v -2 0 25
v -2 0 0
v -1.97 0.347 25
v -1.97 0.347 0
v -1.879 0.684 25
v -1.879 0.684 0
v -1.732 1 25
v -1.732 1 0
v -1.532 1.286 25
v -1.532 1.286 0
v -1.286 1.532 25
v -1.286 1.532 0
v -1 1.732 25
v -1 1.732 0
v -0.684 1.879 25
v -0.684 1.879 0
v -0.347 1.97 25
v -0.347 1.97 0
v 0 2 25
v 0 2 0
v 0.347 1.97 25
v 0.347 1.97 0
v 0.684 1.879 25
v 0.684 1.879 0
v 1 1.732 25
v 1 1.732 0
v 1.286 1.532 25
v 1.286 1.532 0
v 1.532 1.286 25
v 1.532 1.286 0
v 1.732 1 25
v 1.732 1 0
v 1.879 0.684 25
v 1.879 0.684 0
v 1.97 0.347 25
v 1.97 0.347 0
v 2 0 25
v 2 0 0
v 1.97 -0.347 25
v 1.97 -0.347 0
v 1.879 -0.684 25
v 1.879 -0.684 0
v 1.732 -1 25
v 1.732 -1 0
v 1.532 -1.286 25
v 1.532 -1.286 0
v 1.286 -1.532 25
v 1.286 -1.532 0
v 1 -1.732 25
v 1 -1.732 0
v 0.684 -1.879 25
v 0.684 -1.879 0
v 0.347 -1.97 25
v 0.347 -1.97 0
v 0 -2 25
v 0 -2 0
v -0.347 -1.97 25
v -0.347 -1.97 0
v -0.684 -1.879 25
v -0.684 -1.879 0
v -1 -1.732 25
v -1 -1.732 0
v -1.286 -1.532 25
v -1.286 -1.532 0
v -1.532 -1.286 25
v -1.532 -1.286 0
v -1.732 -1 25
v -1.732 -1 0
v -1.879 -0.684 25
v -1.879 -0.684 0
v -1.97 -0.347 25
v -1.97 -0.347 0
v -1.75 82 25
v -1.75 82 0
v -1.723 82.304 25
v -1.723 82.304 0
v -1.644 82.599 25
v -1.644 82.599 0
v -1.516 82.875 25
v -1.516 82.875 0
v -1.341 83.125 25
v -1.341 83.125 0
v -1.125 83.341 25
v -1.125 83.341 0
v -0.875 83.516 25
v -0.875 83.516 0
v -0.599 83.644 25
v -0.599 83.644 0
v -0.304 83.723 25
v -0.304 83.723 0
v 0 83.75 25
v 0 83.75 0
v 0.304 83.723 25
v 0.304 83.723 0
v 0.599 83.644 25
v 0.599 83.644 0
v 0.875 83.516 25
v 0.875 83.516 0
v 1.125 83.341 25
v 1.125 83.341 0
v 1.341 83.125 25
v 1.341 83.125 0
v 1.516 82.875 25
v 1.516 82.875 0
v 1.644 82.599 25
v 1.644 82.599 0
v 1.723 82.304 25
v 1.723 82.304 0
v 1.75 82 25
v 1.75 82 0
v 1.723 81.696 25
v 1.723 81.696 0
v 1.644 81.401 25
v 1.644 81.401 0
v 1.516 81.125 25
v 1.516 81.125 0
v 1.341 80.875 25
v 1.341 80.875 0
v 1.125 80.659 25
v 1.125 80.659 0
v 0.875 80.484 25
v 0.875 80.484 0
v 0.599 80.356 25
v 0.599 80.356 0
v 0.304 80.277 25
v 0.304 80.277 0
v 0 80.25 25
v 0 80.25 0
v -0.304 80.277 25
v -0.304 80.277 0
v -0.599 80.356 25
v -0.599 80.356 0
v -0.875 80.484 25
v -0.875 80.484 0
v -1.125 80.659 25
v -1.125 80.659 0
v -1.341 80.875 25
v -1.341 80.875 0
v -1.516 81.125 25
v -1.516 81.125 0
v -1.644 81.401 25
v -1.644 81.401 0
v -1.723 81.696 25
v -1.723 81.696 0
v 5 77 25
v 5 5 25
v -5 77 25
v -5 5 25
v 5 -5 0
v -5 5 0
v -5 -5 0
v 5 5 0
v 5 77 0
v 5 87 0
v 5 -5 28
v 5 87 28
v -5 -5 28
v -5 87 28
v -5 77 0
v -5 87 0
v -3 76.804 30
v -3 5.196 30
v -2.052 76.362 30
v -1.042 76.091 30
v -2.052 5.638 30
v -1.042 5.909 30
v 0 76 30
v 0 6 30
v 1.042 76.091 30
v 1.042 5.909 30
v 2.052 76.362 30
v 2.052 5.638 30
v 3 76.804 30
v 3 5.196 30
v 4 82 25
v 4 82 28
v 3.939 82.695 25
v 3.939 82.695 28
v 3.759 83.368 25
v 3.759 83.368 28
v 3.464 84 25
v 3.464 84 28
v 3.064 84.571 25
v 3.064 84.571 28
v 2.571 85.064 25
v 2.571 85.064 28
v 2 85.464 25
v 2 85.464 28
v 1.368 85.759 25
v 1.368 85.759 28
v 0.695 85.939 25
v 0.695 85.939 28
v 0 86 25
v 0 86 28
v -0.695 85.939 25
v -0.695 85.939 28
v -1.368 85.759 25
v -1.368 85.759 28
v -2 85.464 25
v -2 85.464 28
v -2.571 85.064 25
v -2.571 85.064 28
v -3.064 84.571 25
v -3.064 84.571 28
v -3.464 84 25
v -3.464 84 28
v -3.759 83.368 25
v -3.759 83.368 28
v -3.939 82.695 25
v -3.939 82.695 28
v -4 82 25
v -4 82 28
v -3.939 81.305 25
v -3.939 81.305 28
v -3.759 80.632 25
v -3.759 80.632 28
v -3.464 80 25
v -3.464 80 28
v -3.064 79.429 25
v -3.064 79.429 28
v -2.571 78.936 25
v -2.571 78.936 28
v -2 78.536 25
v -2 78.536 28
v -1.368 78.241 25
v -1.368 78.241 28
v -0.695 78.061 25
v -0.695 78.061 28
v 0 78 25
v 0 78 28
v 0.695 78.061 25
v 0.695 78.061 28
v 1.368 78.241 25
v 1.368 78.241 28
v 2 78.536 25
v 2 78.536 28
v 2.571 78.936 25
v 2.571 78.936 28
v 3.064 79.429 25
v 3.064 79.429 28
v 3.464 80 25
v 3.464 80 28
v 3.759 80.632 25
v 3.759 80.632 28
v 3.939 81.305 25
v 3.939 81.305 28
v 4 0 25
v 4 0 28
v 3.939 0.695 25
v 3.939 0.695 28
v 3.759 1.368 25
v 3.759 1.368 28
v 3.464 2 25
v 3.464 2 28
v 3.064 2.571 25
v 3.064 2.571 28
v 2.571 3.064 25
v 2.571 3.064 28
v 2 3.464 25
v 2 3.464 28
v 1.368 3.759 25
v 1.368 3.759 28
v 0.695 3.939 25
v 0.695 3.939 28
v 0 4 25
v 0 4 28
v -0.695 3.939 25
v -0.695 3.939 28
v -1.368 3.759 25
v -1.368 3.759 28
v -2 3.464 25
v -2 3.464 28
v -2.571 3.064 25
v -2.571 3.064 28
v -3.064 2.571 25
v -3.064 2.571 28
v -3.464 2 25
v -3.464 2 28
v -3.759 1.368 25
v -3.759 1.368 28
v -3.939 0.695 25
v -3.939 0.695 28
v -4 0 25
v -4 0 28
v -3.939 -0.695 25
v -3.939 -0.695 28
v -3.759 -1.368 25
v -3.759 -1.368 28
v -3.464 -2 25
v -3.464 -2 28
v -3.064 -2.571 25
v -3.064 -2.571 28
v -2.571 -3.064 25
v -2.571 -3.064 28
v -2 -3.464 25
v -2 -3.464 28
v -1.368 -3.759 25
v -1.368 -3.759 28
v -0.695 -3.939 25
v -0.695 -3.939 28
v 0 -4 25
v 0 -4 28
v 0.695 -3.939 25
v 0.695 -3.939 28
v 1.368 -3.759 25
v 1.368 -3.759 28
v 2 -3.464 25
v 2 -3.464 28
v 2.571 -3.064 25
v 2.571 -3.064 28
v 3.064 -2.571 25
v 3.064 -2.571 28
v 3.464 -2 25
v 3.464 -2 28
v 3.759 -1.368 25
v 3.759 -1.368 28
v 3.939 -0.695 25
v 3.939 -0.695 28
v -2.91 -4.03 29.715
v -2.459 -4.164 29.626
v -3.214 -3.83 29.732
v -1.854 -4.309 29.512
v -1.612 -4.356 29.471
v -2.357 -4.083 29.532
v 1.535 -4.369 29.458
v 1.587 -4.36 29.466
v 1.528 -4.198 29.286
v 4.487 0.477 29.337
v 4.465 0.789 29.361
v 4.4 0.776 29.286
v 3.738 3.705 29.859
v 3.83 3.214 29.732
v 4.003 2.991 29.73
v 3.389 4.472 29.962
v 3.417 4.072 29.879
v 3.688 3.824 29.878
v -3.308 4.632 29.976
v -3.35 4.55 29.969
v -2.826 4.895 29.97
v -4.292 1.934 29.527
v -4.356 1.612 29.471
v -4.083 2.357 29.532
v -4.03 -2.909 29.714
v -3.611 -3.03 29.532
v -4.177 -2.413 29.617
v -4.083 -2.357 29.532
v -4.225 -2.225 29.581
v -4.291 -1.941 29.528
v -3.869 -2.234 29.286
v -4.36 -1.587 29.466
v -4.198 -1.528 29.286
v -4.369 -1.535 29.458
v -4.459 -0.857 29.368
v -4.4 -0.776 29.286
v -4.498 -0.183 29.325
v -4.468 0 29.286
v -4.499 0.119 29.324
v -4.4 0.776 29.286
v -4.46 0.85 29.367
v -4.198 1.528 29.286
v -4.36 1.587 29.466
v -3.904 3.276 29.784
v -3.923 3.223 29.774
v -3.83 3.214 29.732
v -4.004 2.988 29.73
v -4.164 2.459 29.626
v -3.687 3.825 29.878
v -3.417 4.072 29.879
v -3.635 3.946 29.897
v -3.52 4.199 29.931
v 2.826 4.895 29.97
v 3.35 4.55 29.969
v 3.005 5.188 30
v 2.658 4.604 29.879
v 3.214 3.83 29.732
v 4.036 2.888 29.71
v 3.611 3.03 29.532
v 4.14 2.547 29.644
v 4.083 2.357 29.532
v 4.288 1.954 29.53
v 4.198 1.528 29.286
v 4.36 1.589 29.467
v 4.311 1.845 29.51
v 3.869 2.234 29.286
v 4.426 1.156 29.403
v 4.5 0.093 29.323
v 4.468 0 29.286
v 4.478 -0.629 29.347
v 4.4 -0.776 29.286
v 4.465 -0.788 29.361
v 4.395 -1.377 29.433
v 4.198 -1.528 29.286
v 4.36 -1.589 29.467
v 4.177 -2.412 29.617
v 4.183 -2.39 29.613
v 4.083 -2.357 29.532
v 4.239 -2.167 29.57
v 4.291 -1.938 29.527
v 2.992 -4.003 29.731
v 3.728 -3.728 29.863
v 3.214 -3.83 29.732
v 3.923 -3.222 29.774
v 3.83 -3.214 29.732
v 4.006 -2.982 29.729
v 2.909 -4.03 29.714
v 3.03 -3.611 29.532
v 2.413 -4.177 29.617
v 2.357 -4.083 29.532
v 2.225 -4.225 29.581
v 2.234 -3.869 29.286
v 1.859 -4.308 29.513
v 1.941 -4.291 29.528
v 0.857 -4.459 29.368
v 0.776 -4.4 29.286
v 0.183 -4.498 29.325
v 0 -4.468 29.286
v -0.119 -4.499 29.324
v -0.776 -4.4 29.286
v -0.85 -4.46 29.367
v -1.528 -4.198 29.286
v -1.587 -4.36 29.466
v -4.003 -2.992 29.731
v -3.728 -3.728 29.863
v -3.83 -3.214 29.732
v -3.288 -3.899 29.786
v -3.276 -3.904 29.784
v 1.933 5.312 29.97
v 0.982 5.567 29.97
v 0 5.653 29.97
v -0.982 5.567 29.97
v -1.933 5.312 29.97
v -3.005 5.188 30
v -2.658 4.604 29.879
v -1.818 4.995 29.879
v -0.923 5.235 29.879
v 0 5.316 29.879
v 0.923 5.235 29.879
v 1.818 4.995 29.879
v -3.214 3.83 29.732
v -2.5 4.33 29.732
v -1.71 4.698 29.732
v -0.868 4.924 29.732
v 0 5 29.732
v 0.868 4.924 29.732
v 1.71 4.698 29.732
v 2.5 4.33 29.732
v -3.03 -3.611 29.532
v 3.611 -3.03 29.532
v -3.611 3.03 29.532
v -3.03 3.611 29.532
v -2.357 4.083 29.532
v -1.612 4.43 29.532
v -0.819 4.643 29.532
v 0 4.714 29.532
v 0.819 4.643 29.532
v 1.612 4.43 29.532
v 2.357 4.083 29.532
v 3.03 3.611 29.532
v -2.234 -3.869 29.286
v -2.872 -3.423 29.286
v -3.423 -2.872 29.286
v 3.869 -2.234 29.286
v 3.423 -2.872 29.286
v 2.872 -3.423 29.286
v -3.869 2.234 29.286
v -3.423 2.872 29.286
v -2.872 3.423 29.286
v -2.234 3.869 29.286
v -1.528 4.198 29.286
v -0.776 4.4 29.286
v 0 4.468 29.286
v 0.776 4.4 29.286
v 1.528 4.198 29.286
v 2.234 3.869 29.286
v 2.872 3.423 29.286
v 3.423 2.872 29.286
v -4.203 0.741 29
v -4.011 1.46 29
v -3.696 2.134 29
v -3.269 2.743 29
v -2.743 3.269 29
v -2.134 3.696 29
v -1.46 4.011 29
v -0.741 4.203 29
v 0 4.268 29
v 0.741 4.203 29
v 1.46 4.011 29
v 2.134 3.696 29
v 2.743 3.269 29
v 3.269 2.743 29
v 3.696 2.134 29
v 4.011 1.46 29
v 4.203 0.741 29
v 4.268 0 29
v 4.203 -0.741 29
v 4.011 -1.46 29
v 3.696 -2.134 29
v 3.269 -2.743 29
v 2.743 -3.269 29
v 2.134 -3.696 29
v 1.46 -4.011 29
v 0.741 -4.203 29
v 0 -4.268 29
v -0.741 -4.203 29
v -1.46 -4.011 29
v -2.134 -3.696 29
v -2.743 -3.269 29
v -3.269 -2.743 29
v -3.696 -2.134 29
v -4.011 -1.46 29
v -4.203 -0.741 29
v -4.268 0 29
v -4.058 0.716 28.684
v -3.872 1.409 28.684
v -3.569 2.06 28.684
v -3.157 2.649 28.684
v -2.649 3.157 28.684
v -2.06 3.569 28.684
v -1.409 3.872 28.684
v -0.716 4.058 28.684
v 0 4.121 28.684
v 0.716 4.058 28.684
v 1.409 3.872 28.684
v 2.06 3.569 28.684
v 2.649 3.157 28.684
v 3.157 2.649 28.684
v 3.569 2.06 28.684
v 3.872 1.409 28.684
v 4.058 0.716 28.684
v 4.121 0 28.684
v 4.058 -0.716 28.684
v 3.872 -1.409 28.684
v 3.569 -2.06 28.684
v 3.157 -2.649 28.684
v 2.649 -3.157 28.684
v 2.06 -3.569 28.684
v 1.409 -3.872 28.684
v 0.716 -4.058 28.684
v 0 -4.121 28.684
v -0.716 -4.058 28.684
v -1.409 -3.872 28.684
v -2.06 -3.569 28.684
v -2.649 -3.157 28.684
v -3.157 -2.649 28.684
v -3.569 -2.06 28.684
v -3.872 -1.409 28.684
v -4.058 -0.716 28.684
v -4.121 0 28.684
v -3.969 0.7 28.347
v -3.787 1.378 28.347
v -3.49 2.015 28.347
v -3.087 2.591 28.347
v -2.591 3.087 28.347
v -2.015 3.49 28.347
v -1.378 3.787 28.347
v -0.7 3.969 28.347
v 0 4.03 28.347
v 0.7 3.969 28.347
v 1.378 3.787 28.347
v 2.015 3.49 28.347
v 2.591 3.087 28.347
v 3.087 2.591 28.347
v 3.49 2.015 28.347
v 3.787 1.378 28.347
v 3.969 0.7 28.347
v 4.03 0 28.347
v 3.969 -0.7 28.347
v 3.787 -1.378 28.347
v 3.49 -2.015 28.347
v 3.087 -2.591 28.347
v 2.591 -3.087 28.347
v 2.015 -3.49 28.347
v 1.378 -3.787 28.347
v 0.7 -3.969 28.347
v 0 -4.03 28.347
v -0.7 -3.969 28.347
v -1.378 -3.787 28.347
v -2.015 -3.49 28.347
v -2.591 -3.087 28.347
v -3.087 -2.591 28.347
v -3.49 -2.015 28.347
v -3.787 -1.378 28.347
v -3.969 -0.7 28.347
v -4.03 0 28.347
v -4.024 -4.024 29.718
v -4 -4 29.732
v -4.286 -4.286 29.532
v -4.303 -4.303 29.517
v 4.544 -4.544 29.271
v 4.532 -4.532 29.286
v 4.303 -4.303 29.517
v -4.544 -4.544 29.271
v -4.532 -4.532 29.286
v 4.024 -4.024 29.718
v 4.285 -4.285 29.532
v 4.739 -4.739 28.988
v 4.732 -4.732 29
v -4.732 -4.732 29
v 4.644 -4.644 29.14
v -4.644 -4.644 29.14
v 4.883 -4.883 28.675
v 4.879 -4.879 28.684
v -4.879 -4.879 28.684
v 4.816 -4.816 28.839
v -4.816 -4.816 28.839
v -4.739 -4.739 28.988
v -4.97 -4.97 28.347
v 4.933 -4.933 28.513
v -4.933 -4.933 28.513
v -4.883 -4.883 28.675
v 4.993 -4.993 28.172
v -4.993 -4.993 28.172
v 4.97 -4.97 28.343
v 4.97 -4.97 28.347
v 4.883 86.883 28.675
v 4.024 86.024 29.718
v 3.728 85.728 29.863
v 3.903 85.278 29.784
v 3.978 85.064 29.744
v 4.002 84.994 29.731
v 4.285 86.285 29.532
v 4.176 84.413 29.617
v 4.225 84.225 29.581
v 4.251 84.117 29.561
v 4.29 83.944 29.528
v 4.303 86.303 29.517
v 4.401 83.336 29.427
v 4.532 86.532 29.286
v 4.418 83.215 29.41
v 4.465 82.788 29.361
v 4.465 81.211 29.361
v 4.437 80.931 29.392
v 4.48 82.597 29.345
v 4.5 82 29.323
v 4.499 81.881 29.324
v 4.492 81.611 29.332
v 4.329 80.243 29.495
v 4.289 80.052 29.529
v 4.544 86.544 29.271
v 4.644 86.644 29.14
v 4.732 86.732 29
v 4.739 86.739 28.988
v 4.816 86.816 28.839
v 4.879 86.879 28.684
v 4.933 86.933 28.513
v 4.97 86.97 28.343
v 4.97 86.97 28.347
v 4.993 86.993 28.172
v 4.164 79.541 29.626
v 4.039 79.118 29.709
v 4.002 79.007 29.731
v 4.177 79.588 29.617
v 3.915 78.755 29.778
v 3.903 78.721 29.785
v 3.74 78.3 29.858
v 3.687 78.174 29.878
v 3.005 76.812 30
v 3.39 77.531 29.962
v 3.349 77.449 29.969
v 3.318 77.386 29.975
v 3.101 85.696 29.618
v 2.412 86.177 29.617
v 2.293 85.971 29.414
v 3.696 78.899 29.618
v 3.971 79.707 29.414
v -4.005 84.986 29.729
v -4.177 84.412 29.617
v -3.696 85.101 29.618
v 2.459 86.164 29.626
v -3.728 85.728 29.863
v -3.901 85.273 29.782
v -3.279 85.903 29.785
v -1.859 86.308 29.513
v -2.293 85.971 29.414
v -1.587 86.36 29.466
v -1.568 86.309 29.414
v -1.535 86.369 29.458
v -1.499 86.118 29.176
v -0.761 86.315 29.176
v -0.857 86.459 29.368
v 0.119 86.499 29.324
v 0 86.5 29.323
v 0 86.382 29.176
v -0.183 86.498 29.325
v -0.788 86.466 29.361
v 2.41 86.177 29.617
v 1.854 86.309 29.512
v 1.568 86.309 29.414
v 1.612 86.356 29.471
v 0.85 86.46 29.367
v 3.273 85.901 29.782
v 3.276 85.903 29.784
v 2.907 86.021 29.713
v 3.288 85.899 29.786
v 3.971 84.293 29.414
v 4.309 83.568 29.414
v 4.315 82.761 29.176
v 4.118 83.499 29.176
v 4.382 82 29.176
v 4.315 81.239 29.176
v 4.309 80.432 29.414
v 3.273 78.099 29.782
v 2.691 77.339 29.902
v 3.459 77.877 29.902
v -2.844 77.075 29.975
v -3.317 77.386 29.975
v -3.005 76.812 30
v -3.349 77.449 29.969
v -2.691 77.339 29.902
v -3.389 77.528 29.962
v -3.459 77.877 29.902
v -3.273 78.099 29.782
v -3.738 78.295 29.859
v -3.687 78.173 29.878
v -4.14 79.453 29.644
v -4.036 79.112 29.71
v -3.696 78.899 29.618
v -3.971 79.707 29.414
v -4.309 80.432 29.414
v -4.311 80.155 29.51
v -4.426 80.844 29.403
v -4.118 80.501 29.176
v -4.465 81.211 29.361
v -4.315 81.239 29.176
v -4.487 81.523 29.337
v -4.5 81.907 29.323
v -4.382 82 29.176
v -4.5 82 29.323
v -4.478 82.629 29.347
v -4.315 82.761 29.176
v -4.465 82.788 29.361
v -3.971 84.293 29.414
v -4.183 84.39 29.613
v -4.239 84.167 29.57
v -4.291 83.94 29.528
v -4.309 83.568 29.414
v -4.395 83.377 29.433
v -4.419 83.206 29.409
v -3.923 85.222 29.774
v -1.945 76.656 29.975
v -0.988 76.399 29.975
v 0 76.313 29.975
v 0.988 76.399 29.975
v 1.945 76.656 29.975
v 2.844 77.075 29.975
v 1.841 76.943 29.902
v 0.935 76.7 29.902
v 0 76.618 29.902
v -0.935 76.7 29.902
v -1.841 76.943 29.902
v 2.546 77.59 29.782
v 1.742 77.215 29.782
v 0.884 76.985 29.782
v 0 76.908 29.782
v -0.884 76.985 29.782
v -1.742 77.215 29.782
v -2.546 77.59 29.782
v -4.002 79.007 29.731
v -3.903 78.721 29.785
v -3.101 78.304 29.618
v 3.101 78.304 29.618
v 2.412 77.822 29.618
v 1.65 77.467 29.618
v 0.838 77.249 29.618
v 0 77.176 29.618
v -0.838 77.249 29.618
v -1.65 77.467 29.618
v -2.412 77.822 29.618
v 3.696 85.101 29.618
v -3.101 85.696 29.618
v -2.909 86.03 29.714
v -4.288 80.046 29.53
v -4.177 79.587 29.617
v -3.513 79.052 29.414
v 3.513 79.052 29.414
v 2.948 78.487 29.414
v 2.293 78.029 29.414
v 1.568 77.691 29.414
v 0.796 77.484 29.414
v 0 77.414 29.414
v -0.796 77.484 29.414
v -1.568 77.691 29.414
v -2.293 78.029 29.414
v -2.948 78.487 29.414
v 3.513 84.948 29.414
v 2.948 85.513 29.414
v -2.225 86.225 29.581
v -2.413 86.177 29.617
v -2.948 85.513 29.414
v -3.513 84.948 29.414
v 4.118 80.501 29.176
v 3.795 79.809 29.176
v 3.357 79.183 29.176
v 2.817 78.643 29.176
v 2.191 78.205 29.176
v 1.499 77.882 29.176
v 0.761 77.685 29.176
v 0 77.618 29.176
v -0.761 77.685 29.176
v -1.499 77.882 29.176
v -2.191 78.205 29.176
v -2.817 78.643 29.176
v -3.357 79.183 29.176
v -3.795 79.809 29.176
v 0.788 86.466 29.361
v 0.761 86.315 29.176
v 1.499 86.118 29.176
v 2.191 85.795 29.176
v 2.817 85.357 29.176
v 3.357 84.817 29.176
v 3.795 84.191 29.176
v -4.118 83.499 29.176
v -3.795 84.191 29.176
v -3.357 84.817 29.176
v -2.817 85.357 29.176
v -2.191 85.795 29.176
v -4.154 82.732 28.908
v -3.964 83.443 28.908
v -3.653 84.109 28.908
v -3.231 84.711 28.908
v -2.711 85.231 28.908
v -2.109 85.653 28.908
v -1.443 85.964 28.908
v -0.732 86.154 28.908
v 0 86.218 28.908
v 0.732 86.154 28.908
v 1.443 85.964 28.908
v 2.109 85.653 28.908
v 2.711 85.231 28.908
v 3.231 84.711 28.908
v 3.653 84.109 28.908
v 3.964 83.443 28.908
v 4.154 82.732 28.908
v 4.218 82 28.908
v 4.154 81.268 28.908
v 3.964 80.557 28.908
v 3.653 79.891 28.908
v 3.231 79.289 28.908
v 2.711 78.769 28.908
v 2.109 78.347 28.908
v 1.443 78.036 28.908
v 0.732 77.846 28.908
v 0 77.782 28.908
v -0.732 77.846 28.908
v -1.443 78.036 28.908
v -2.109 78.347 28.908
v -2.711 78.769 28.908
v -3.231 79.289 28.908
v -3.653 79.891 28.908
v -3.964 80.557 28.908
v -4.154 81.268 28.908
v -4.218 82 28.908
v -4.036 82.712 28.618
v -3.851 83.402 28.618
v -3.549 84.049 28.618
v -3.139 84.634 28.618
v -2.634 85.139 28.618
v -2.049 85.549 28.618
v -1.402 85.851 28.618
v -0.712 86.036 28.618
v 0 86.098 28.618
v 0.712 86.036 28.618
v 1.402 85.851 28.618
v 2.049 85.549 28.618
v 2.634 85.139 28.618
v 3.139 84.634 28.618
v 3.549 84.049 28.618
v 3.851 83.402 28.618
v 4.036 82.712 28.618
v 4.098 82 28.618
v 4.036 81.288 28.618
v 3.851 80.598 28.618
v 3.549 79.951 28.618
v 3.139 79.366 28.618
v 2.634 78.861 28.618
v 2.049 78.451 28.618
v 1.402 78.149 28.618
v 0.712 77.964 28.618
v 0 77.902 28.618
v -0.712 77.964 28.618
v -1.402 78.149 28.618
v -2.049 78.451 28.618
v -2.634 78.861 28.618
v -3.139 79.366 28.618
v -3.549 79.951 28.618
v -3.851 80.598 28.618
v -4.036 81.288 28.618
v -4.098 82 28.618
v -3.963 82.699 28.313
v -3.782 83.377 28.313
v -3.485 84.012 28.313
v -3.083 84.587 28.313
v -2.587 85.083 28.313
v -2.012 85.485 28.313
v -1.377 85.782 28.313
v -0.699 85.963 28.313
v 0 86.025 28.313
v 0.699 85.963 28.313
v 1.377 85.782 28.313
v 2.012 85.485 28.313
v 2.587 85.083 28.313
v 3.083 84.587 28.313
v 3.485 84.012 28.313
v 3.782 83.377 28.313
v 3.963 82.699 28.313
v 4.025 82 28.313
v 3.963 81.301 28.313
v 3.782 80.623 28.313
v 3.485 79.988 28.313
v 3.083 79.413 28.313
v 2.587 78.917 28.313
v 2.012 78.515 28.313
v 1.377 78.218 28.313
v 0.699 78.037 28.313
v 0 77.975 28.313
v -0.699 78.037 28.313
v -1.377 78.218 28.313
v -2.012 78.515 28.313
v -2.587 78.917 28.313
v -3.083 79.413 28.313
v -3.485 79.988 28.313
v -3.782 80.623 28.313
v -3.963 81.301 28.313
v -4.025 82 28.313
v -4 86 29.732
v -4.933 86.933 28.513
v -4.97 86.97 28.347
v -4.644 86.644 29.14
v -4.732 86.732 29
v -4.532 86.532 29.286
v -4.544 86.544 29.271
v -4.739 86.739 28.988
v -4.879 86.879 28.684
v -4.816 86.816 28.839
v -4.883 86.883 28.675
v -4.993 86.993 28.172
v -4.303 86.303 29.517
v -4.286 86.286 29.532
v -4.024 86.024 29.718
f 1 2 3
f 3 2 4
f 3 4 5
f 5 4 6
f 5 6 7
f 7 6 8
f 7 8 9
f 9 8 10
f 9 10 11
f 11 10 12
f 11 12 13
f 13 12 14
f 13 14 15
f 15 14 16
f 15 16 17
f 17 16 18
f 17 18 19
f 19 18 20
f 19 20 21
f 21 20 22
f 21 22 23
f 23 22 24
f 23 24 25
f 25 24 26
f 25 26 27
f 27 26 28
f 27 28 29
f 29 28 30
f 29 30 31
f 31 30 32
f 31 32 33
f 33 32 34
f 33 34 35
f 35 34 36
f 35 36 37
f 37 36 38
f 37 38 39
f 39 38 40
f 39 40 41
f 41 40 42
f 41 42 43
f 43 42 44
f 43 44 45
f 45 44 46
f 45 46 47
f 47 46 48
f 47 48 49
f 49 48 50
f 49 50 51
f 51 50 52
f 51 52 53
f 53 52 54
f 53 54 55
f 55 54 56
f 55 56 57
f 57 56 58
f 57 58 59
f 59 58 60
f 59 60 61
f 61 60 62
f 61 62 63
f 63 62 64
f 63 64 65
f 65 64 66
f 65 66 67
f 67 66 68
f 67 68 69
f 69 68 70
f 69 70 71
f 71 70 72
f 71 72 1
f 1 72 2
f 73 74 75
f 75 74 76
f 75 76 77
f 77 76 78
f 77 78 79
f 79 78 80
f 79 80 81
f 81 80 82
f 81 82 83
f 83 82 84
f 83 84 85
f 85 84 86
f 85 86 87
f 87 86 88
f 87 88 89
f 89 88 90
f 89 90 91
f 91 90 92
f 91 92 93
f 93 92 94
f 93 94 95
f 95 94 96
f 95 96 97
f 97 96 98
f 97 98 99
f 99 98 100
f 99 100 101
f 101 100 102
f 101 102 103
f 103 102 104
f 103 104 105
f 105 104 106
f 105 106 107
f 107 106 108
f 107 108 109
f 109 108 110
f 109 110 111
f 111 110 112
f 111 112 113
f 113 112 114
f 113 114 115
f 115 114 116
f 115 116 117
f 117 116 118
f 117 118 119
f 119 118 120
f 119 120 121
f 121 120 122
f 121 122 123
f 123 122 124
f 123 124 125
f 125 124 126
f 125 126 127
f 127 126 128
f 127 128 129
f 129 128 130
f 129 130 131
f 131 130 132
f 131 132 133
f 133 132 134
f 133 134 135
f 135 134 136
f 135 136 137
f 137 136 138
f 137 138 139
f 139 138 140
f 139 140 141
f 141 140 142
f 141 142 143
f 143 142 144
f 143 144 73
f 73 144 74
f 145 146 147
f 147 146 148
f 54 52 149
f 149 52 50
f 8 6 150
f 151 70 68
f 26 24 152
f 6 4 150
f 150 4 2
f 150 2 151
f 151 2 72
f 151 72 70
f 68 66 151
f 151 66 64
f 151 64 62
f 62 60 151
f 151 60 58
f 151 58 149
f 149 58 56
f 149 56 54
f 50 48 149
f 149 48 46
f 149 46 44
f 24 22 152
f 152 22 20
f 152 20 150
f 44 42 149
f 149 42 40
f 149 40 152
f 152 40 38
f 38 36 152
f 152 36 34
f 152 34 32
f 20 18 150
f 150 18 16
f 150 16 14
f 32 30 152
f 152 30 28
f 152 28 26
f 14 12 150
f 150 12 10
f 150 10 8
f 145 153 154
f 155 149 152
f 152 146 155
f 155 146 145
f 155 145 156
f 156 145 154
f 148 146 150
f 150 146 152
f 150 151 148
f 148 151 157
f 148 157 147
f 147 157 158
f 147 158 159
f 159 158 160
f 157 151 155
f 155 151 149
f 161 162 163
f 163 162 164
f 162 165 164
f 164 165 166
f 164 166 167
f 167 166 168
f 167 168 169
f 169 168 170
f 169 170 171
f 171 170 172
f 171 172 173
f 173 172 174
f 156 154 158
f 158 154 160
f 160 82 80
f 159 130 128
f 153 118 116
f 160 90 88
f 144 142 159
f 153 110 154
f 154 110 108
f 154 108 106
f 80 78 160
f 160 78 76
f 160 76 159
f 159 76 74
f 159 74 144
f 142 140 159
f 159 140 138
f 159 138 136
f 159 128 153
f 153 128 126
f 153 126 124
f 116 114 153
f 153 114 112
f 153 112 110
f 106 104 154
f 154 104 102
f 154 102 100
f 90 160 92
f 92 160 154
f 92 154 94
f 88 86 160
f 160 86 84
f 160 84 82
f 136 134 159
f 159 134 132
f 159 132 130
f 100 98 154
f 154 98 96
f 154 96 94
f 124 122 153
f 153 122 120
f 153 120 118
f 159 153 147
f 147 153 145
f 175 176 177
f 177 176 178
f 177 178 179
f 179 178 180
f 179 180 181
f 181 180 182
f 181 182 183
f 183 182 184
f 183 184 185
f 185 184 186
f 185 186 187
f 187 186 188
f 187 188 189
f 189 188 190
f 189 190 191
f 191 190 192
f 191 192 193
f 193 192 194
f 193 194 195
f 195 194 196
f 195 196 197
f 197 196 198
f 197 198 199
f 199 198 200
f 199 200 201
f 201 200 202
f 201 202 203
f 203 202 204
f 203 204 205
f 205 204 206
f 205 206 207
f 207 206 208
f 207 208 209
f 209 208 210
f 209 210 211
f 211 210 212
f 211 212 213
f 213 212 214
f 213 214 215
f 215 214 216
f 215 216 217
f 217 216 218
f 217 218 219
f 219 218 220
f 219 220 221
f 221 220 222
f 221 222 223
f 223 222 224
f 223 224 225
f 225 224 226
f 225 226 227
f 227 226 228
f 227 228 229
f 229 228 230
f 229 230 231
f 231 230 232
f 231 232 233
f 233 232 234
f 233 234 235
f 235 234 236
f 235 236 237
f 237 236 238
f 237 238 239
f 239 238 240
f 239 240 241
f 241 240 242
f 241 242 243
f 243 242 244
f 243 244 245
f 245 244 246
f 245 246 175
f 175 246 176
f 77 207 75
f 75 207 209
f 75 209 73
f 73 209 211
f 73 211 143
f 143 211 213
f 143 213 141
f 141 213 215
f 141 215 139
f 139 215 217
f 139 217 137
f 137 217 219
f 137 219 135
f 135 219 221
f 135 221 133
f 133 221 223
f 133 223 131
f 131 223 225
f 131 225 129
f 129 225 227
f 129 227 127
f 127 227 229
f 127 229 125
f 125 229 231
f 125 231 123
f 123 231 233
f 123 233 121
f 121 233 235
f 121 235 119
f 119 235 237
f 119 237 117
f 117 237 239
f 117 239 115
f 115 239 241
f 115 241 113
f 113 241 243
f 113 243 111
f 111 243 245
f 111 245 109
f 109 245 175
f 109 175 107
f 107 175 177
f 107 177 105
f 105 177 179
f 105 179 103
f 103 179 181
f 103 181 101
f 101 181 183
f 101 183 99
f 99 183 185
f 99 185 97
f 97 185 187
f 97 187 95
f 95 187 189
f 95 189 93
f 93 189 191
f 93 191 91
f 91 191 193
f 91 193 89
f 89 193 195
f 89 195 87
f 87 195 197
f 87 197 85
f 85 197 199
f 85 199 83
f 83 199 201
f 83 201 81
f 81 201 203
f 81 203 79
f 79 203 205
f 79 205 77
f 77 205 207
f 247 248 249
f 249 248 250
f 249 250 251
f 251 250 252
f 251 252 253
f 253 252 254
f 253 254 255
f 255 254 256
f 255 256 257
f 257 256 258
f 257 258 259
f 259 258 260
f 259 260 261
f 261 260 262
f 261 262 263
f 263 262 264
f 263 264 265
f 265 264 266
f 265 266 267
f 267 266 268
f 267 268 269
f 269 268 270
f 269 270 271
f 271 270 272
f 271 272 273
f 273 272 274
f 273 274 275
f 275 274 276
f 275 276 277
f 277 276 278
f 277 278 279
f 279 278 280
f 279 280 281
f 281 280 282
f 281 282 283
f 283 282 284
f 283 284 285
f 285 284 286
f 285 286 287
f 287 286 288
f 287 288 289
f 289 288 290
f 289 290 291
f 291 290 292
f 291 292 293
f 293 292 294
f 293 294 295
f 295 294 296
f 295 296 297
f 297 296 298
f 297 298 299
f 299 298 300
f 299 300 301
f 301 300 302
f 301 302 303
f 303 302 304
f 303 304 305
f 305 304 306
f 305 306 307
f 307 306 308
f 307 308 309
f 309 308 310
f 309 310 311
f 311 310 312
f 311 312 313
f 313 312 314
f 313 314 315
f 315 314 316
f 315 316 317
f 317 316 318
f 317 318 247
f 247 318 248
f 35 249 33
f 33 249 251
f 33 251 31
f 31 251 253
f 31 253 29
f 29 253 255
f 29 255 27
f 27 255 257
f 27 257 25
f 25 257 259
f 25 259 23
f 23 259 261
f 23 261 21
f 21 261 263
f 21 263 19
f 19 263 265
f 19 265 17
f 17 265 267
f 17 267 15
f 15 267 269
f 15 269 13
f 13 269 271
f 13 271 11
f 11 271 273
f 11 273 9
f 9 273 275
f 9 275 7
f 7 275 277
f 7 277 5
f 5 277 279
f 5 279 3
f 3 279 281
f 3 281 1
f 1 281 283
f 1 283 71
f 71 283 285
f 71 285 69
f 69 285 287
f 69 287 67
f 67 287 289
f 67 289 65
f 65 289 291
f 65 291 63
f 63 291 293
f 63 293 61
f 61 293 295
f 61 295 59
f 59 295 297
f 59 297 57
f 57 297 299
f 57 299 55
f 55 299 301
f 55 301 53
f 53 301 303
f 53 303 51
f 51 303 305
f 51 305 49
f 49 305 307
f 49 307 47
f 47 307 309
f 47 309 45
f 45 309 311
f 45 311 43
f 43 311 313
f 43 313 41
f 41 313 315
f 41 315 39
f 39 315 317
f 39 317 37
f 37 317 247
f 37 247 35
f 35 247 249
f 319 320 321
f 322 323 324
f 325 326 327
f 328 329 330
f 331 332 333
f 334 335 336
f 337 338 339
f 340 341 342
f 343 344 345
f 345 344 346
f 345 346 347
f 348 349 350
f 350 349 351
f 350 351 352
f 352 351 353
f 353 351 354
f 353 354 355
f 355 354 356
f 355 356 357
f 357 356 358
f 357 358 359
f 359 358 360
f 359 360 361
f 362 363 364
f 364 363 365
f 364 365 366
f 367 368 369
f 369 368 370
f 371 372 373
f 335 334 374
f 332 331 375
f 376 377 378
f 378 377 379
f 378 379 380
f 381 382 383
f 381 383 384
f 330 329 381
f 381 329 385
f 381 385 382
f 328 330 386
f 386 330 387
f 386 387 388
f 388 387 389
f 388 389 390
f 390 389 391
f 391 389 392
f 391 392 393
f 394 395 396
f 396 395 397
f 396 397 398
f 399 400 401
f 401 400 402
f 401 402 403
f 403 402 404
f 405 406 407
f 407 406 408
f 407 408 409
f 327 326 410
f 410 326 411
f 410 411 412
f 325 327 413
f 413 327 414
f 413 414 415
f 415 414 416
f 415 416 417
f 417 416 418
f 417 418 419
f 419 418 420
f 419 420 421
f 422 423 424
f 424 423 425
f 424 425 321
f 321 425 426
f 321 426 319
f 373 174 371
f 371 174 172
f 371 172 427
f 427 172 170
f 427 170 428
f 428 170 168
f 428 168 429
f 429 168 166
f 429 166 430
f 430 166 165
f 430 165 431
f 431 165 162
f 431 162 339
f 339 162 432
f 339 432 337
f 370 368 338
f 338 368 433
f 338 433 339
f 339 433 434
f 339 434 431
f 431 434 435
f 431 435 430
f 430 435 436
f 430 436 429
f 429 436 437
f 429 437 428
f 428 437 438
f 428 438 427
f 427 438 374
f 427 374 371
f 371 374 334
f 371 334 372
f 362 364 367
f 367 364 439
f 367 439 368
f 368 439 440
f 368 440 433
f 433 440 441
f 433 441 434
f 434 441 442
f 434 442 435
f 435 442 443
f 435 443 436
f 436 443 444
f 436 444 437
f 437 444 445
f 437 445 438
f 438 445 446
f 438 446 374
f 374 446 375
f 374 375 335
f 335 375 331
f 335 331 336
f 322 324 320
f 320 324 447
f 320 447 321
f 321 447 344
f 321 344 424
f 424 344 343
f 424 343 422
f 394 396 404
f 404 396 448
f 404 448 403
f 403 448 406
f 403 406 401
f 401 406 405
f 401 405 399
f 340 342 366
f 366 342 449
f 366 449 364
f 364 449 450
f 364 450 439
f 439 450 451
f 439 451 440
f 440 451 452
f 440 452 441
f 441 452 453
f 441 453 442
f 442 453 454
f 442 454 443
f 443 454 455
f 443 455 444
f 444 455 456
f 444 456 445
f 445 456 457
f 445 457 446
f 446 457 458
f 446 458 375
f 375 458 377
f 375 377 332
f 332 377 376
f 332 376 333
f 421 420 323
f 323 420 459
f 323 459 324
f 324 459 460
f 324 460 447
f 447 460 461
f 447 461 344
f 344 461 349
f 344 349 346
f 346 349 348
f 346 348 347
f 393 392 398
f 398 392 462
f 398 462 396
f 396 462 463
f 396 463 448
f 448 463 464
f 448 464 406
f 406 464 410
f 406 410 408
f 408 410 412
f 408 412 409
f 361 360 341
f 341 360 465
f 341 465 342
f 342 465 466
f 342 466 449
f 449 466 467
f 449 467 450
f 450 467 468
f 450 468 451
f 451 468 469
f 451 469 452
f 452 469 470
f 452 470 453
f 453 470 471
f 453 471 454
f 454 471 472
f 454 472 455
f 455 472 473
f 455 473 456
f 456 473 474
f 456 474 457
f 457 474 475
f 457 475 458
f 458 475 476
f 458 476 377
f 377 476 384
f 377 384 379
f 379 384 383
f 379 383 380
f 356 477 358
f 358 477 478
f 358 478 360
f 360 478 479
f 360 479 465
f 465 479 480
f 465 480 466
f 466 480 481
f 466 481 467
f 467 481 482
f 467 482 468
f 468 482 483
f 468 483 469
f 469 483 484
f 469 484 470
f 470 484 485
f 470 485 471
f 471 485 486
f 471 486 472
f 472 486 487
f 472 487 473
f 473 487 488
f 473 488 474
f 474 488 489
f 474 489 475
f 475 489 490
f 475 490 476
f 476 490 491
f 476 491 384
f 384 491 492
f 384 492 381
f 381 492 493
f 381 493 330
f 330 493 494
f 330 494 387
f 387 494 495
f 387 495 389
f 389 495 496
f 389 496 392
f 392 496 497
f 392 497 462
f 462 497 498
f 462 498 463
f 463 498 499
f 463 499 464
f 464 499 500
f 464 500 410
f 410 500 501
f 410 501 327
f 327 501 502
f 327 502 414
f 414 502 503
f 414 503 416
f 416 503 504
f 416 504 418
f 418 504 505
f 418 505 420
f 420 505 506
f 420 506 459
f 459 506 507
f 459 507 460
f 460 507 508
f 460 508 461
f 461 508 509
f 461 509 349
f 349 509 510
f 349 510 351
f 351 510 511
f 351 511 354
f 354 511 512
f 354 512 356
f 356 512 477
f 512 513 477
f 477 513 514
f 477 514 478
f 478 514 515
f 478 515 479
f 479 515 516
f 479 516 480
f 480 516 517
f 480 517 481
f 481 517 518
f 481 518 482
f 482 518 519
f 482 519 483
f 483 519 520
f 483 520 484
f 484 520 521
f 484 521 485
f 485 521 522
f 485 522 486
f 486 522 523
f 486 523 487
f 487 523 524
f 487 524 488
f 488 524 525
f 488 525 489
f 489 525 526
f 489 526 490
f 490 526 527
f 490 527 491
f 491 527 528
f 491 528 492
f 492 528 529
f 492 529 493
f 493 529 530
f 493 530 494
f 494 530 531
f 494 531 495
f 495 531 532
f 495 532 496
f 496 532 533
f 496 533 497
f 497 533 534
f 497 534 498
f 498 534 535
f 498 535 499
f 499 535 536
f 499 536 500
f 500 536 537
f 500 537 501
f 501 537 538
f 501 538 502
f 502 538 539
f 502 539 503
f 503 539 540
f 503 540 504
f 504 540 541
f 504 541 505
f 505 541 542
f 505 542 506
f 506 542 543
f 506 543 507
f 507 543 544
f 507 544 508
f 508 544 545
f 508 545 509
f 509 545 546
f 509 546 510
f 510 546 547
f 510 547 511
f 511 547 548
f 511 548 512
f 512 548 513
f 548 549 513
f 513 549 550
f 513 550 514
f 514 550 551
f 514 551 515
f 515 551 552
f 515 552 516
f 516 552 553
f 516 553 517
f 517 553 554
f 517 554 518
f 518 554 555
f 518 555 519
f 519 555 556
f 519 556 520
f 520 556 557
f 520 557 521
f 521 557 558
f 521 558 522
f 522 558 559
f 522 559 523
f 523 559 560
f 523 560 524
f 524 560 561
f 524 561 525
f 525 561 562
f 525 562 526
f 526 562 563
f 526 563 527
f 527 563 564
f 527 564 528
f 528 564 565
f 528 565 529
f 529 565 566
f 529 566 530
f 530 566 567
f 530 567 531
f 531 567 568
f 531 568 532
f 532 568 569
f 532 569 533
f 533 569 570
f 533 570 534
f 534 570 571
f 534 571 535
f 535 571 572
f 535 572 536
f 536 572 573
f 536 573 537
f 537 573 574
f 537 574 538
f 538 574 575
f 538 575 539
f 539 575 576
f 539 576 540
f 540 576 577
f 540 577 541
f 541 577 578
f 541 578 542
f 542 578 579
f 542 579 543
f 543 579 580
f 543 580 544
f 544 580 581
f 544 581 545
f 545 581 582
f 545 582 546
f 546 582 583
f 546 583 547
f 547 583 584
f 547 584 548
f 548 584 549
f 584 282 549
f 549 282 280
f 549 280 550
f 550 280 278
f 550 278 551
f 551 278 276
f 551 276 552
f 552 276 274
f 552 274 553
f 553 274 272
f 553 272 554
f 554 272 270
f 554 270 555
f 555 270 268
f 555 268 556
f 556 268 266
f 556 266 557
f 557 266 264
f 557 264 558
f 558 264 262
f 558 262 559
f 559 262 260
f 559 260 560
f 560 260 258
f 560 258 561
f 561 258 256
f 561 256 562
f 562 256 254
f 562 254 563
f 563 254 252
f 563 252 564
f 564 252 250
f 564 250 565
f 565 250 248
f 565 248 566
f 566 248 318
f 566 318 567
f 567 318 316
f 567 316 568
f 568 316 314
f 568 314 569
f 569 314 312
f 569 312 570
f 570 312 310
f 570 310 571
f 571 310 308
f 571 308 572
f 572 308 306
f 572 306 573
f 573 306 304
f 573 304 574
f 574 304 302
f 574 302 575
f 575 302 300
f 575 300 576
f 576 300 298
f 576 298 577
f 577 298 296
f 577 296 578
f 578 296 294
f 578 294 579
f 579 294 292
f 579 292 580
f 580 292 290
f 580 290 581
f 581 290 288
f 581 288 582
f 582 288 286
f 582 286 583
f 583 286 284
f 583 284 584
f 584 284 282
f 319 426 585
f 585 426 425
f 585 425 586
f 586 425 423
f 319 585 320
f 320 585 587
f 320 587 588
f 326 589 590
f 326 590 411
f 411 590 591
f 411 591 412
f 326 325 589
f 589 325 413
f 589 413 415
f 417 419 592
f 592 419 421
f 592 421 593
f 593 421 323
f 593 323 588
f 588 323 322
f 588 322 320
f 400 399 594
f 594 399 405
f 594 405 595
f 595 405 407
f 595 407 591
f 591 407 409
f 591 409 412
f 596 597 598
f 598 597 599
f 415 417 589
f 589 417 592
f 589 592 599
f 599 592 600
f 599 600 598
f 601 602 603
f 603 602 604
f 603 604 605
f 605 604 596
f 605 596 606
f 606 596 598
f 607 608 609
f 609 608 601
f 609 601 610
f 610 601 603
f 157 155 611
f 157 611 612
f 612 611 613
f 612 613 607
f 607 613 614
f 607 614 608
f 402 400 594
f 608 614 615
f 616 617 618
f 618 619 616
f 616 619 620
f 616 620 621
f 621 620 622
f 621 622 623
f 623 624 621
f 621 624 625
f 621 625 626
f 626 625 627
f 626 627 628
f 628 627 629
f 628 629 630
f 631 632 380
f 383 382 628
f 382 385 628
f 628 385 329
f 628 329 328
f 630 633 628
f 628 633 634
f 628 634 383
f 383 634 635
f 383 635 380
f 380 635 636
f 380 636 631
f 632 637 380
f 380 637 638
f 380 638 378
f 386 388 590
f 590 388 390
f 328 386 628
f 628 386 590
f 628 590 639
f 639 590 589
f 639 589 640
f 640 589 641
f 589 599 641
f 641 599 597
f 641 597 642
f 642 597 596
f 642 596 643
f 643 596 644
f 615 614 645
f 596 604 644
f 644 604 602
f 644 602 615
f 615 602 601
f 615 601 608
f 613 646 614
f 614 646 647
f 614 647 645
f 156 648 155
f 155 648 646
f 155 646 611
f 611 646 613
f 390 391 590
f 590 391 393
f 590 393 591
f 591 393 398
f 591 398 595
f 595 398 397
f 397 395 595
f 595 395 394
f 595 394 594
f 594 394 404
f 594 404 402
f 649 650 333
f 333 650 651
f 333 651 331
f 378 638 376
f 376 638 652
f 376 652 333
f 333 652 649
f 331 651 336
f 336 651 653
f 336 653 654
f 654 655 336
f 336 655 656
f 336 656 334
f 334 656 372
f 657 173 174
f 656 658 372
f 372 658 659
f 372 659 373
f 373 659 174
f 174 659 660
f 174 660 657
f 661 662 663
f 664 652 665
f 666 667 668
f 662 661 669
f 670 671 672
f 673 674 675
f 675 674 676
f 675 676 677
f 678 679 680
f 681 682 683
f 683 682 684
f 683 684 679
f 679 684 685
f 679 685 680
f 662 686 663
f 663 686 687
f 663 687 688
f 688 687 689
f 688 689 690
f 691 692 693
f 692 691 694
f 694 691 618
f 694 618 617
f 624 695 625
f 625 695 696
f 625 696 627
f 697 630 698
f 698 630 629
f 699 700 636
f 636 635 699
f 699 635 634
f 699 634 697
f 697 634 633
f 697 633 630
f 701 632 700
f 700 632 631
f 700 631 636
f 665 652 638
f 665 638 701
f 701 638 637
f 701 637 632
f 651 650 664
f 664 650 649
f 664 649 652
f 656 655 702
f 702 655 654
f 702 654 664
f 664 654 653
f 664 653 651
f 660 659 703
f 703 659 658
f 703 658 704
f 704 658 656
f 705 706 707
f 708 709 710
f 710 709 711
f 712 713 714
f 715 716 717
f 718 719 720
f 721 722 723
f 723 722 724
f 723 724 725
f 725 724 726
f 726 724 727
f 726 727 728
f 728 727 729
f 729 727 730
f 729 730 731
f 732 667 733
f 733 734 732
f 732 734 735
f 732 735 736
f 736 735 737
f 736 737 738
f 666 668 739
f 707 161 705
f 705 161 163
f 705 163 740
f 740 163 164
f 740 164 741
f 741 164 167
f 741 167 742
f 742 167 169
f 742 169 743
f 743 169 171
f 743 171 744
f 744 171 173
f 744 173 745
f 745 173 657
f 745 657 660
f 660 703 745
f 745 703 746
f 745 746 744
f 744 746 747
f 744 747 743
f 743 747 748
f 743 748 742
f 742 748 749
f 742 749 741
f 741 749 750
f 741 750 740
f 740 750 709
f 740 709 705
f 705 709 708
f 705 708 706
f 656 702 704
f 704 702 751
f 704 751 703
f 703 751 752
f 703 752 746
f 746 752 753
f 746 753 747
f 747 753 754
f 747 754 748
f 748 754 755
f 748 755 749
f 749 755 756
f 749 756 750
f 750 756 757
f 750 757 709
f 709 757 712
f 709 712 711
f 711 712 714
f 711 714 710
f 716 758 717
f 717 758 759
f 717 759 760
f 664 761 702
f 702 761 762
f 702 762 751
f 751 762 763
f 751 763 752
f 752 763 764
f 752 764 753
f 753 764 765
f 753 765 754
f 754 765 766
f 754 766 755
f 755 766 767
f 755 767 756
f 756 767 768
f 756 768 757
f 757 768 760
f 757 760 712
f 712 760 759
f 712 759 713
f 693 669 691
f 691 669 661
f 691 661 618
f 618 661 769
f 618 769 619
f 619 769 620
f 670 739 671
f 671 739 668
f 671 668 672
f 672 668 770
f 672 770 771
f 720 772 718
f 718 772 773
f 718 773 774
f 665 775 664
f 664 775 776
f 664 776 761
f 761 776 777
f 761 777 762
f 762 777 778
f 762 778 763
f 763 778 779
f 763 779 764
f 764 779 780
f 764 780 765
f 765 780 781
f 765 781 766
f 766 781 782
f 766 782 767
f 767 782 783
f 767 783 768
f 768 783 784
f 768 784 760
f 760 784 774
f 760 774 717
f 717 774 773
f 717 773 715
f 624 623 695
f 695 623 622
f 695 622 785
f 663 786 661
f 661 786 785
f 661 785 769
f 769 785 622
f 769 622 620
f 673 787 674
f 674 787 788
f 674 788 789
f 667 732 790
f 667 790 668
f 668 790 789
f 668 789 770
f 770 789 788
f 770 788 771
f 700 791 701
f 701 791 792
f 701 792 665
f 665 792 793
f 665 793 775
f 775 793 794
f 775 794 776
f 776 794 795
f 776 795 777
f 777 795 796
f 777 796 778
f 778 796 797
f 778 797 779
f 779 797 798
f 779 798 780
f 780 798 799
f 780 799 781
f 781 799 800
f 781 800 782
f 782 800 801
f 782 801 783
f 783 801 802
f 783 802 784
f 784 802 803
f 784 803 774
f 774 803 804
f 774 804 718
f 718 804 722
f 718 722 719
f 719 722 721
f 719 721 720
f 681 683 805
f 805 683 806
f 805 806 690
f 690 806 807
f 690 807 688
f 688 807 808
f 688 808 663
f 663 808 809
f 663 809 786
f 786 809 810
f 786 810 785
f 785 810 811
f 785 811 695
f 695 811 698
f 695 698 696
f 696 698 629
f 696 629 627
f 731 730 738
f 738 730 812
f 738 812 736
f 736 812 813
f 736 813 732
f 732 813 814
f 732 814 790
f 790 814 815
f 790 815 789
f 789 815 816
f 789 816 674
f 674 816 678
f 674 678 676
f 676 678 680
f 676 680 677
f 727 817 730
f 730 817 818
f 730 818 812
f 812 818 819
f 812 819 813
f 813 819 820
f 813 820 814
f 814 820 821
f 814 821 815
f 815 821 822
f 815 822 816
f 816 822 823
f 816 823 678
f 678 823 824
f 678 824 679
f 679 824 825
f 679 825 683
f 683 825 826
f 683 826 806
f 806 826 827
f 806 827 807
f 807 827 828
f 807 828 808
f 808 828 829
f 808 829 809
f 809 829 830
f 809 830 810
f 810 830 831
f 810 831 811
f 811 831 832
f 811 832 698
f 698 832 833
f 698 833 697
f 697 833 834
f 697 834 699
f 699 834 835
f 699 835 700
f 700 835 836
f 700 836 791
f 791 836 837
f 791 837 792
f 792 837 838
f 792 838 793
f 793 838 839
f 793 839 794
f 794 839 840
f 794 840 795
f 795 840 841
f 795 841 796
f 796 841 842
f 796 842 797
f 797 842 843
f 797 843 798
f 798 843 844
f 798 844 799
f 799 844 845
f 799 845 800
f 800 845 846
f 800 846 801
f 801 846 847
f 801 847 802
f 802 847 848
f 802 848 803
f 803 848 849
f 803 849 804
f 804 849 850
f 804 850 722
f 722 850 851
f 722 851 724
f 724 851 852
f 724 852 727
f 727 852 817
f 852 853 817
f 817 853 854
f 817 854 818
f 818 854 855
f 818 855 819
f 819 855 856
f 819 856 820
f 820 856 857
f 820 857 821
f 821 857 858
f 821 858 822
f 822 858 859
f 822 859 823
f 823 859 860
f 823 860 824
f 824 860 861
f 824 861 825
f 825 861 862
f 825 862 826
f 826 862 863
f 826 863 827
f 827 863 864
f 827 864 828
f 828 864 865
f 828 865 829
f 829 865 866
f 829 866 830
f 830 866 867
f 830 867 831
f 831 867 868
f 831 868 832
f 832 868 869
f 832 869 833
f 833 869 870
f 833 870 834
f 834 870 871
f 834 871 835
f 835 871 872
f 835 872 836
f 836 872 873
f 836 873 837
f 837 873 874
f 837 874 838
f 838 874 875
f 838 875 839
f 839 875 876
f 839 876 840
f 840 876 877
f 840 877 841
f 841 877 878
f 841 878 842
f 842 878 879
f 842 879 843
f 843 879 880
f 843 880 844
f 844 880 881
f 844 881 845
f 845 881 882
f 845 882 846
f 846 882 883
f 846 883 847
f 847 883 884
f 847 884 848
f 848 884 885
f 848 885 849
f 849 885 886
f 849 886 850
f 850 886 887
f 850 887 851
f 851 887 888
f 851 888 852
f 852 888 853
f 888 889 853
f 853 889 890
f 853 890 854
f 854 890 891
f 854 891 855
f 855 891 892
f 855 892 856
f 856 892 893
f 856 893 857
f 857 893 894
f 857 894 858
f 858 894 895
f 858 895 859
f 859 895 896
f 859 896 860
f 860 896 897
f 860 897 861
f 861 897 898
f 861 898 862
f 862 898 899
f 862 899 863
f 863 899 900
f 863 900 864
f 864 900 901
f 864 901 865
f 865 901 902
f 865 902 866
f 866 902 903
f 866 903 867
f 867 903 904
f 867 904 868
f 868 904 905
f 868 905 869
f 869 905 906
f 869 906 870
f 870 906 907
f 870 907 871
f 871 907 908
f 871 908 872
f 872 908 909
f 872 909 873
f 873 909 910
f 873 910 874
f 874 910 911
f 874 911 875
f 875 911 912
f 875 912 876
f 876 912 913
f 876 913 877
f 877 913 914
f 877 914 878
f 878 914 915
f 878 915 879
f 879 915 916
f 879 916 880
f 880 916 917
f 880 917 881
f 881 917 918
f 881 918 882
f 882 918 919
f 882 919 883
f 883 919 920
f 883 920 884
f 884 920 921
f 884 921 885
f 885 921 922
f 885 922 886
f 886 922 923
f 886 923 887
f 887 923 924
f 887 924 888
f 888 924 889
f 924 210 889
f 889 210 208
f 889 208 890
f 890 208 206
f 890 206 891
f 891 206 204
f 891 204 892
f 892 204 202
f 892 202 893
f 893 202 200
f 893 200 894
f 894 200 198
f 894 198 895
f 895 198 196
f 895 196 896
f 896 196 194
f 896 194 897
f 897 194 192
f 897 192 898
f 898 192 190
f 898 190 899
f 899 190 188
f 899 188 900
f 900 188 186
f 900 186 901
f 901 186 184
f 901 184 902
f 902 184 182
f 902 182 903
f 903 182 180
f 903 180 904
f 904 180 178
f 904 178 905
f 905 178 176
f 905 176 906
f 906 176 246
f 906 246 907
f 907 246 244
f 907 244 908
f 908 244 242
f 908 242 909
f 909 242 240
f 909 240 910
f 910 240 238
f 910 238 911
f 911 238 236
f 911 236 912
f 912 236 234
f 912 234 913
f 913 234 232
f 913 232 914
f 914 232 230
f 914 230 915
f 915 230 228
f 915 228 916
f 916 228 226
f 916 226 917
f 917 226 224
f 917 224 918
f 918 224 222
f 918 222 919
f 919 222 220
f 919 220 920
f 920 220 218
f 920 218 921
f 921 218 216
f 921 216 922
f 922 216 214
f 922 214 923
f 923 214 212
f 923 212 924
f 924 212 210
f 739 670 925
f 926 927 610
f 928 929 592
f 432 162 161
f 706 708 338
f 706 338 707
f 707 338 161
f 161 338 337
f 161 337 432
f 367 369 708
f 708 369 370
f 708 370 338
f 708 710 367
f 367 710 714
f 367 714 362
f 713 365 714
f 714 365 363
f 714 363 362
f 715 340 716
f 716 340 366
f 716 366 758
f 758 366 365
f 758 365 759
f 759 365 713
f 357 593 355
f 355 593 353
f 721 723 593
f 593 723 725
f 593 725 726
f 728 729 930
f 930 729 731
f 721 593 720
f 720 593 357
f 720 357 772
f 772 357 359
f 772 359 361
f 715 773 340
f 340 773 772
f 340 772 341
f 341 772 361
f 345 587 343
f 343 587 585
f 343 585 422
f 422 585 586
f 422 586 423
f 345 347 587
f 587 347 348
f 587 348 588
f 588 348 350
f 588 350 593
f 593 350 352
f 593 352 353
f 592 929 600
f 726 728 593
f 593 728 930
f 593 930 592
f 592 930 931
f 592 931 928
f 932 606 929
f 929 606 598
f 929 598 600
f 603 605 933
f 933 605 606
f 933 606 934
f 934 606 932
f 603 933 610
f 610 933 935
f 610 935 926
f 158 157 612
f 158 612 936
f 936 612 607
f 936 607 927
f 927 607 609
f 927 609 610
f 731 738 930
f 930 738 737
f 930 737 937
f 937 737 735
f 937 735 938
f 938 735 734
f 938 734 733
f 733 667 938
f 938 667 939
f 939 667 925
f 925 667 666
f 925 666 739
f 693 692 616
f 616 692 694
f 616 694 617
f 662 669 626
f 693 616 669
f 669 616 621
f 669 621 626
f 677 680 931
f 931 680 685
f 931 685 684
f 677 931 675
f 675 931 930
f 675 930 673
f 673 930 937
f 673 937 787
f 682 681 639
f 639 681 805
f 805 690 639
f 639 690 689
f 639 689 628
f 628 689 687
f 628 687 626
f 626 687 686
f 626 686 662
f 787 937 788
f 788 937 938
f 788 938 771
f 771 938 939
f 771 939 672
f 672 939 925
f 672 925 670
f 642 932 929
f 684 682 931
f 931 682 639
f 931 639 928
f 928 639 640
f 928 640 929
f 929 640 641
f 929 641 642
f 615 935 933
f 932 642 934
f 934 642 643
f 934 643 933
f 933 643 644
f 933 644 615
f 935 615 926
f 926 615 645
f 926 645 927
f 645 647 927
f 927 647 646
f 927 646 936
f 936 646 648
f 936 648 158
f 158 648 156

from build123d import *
from build123d.topology import SkipClean

# Parameters (mm, degrees)
SCHIZZO1_W                   = 10
SCHIZZO1_H                   = 10
SCHIZZO1_R                   = 2
ESTRUSIONE_ESTRUSIONE1_DEPTH = 25
SCHIZZO2_W                   = 10
SCHIZZO2_H                   = 92
SCHIZZO2_R                   = 1.75
SCHIZZO2_R_2                 = 2
ESTRUSIONE_ESTRUSIONE2_DEPTH = 5
ESTRUSIONE_ESTRUSIONE3_START = 25
SCHIZZO3_W                   = 10
SCHIZZO3_H                   = 10
SCHIZZO3_R                   = 1.75
ESTRUSIONE_ESTRUSIONE3_DEPTH = 25
SCHIZZO4_R                   = 4
TAGLIO_ESTRUSIONE1_DEPTH     = 5
RACCORDO1_R                  = 2


with BuildPart() as part:
    # Schizzo1 → Estrusione-Estrusione1 (new body)
    with BuildSketch(Plane.XY):
        Rectangle(SCHIZZO1_W, SCHIZZO1_H)
        Circle(SCHIZZO1_R, mode=Mode.SUBTRACT)
    extrude(amount=ESTRUSIONE_ESTRUSIONE1_DEPTH)

    # Schizzo2 → Estrusione-Estrusione2 (add)
    with BuildSketch(Plane.XY.offset(25)):
        with Locations((0, 41)):
            Rectangle(SCHIZZO2_W, SCHIZZO2_H)
        with Locations((0, 82)):
            Circle(SCHIZZO2_R, mode=Mode.SUBTRACT)
        Circle(SCHIZZO2_R_2, mode=Mode.SUBTRACT)
    extrude(amount=ESTRUSIONE_ESTRUSIONE2_DEPTH)

    # Schizzo3 → Estrusione-Estrusione3 (add)
    with SkipClean():  # the faces are left unmerged after this step: merging them gives an invalid solid
        with BuildSketch(Plane(origin=(0, 0, 25), x_dir=(-1, 0, 0), z_dir=(0, 0, -1)).offset(ESTRUSIONE_ESTRUSIONE3_START)):
            with Locations((0, 82)):
                Rectangle(SCHIZZO3_W, SCHIZZO3_H)
            with Locations((0, 82)):
                Circle(SCHIZZO3_R, mode=Mode.SUBTRACT)
        extrude(amount=-ESTRUSIONE_ESTRUSIONE3_DEPTH)

    # Schizzo4 → Taglio-Estrusione1 (cut)
    with BuildSketch(Plane.XY.offset(30)):
        Circle(SCHIZZO4_R)
        with Locations((0, 82)):
            Circle(SCHIZZO4_R)
    extrude(amount=-TAGLIO_ESTRUSIONE1_DEPTH, mode=Mode.SUBTRACT)

    # Raccordo1
    # the kernel refuses this fillet: 2 mm, written as the material it takes off along each edge
    with BuildSketch(Plane(origin=(-5, 92, 30), x_dir=(1, 0, 0), z_dir=(0, -1, 0)), Plane(origin=(5, -10, 30), x_dir=(-1, 0, 0), z_dir=(0, 1, 0))) as raccordo1_piece_1:
        with BuildLine():
            CenterArc((RACCORDO1_R, -RACCORDO1_R), RACCORDO1_R, 90, 90)
            Line((0, -RACCORDO1_R), (0, 0))
            Line((0, 0), (RACCORDO1_R, 0))
        make_face()
    extrude(amount=102, mode=Mode.SUBTRACT)
    with BuildSketch(Plane(origin=(-10, -5, 30), x_dir=(0, 1, 0), z_dir=(1, 0, 0)), Plane(origin=(10, 87, 30), x_dir=(0, -1, 0), z_dir=(-1, 0, 0))) as raccordo1_piece_2:
        with BuildLine():
            CenterArc((RACCORDO1_R, -RACCORDO1_R), RACCORDO1_R, 90, 90)
            Line((0, -RACCORDO1_R), (0, 0))
            Line((0, 0), (RACCORDO1_R, 0))
        make_face()
    extrude(amount=20, mode=Mode.SUBTRACT)
    with BuildSketch(Plane(origin=(0, 0, 30), x_dir=(1, 0, 0), z_dir=(0, -1, 0))) as raccordo1_piece_3:
        with BuildLine():
            CenterArc((4 + RACCORDO1_R, -RACCORDO1_R), RACCORDO1_R, 90, 90)
            Line((4, -RACCORDO1_R), (4, 0))
            Line((4, 0), (4 + RACCORDO1_R, 0))
        make_face()
    revolve(axis=Axis((0, 0, 30), (0, 0, 1)), mode=Mode.SUBTRACT)
    with BuildSketch(Plane(origin=(0, 82, 30), x_dir=(1, 0, 0), z_dir=(0, -1, 0))) as raccordo1_piece_4:
        with BuildLine():
            CenterArc((4 + RACCORDO1_R, -RACCORDO1_R), RACCORDO1_R, 90, 90)
            Line((4 + RACCORDO1_R, 0), (4, 0))
            Line((4, 0), (4, -RACCORDO1_R))
        make_face()
    revolve(axis=Axis((0, 82, 30), (0, 0, 1)), mode=Mode.SUBTRACT)


solid = part.part
